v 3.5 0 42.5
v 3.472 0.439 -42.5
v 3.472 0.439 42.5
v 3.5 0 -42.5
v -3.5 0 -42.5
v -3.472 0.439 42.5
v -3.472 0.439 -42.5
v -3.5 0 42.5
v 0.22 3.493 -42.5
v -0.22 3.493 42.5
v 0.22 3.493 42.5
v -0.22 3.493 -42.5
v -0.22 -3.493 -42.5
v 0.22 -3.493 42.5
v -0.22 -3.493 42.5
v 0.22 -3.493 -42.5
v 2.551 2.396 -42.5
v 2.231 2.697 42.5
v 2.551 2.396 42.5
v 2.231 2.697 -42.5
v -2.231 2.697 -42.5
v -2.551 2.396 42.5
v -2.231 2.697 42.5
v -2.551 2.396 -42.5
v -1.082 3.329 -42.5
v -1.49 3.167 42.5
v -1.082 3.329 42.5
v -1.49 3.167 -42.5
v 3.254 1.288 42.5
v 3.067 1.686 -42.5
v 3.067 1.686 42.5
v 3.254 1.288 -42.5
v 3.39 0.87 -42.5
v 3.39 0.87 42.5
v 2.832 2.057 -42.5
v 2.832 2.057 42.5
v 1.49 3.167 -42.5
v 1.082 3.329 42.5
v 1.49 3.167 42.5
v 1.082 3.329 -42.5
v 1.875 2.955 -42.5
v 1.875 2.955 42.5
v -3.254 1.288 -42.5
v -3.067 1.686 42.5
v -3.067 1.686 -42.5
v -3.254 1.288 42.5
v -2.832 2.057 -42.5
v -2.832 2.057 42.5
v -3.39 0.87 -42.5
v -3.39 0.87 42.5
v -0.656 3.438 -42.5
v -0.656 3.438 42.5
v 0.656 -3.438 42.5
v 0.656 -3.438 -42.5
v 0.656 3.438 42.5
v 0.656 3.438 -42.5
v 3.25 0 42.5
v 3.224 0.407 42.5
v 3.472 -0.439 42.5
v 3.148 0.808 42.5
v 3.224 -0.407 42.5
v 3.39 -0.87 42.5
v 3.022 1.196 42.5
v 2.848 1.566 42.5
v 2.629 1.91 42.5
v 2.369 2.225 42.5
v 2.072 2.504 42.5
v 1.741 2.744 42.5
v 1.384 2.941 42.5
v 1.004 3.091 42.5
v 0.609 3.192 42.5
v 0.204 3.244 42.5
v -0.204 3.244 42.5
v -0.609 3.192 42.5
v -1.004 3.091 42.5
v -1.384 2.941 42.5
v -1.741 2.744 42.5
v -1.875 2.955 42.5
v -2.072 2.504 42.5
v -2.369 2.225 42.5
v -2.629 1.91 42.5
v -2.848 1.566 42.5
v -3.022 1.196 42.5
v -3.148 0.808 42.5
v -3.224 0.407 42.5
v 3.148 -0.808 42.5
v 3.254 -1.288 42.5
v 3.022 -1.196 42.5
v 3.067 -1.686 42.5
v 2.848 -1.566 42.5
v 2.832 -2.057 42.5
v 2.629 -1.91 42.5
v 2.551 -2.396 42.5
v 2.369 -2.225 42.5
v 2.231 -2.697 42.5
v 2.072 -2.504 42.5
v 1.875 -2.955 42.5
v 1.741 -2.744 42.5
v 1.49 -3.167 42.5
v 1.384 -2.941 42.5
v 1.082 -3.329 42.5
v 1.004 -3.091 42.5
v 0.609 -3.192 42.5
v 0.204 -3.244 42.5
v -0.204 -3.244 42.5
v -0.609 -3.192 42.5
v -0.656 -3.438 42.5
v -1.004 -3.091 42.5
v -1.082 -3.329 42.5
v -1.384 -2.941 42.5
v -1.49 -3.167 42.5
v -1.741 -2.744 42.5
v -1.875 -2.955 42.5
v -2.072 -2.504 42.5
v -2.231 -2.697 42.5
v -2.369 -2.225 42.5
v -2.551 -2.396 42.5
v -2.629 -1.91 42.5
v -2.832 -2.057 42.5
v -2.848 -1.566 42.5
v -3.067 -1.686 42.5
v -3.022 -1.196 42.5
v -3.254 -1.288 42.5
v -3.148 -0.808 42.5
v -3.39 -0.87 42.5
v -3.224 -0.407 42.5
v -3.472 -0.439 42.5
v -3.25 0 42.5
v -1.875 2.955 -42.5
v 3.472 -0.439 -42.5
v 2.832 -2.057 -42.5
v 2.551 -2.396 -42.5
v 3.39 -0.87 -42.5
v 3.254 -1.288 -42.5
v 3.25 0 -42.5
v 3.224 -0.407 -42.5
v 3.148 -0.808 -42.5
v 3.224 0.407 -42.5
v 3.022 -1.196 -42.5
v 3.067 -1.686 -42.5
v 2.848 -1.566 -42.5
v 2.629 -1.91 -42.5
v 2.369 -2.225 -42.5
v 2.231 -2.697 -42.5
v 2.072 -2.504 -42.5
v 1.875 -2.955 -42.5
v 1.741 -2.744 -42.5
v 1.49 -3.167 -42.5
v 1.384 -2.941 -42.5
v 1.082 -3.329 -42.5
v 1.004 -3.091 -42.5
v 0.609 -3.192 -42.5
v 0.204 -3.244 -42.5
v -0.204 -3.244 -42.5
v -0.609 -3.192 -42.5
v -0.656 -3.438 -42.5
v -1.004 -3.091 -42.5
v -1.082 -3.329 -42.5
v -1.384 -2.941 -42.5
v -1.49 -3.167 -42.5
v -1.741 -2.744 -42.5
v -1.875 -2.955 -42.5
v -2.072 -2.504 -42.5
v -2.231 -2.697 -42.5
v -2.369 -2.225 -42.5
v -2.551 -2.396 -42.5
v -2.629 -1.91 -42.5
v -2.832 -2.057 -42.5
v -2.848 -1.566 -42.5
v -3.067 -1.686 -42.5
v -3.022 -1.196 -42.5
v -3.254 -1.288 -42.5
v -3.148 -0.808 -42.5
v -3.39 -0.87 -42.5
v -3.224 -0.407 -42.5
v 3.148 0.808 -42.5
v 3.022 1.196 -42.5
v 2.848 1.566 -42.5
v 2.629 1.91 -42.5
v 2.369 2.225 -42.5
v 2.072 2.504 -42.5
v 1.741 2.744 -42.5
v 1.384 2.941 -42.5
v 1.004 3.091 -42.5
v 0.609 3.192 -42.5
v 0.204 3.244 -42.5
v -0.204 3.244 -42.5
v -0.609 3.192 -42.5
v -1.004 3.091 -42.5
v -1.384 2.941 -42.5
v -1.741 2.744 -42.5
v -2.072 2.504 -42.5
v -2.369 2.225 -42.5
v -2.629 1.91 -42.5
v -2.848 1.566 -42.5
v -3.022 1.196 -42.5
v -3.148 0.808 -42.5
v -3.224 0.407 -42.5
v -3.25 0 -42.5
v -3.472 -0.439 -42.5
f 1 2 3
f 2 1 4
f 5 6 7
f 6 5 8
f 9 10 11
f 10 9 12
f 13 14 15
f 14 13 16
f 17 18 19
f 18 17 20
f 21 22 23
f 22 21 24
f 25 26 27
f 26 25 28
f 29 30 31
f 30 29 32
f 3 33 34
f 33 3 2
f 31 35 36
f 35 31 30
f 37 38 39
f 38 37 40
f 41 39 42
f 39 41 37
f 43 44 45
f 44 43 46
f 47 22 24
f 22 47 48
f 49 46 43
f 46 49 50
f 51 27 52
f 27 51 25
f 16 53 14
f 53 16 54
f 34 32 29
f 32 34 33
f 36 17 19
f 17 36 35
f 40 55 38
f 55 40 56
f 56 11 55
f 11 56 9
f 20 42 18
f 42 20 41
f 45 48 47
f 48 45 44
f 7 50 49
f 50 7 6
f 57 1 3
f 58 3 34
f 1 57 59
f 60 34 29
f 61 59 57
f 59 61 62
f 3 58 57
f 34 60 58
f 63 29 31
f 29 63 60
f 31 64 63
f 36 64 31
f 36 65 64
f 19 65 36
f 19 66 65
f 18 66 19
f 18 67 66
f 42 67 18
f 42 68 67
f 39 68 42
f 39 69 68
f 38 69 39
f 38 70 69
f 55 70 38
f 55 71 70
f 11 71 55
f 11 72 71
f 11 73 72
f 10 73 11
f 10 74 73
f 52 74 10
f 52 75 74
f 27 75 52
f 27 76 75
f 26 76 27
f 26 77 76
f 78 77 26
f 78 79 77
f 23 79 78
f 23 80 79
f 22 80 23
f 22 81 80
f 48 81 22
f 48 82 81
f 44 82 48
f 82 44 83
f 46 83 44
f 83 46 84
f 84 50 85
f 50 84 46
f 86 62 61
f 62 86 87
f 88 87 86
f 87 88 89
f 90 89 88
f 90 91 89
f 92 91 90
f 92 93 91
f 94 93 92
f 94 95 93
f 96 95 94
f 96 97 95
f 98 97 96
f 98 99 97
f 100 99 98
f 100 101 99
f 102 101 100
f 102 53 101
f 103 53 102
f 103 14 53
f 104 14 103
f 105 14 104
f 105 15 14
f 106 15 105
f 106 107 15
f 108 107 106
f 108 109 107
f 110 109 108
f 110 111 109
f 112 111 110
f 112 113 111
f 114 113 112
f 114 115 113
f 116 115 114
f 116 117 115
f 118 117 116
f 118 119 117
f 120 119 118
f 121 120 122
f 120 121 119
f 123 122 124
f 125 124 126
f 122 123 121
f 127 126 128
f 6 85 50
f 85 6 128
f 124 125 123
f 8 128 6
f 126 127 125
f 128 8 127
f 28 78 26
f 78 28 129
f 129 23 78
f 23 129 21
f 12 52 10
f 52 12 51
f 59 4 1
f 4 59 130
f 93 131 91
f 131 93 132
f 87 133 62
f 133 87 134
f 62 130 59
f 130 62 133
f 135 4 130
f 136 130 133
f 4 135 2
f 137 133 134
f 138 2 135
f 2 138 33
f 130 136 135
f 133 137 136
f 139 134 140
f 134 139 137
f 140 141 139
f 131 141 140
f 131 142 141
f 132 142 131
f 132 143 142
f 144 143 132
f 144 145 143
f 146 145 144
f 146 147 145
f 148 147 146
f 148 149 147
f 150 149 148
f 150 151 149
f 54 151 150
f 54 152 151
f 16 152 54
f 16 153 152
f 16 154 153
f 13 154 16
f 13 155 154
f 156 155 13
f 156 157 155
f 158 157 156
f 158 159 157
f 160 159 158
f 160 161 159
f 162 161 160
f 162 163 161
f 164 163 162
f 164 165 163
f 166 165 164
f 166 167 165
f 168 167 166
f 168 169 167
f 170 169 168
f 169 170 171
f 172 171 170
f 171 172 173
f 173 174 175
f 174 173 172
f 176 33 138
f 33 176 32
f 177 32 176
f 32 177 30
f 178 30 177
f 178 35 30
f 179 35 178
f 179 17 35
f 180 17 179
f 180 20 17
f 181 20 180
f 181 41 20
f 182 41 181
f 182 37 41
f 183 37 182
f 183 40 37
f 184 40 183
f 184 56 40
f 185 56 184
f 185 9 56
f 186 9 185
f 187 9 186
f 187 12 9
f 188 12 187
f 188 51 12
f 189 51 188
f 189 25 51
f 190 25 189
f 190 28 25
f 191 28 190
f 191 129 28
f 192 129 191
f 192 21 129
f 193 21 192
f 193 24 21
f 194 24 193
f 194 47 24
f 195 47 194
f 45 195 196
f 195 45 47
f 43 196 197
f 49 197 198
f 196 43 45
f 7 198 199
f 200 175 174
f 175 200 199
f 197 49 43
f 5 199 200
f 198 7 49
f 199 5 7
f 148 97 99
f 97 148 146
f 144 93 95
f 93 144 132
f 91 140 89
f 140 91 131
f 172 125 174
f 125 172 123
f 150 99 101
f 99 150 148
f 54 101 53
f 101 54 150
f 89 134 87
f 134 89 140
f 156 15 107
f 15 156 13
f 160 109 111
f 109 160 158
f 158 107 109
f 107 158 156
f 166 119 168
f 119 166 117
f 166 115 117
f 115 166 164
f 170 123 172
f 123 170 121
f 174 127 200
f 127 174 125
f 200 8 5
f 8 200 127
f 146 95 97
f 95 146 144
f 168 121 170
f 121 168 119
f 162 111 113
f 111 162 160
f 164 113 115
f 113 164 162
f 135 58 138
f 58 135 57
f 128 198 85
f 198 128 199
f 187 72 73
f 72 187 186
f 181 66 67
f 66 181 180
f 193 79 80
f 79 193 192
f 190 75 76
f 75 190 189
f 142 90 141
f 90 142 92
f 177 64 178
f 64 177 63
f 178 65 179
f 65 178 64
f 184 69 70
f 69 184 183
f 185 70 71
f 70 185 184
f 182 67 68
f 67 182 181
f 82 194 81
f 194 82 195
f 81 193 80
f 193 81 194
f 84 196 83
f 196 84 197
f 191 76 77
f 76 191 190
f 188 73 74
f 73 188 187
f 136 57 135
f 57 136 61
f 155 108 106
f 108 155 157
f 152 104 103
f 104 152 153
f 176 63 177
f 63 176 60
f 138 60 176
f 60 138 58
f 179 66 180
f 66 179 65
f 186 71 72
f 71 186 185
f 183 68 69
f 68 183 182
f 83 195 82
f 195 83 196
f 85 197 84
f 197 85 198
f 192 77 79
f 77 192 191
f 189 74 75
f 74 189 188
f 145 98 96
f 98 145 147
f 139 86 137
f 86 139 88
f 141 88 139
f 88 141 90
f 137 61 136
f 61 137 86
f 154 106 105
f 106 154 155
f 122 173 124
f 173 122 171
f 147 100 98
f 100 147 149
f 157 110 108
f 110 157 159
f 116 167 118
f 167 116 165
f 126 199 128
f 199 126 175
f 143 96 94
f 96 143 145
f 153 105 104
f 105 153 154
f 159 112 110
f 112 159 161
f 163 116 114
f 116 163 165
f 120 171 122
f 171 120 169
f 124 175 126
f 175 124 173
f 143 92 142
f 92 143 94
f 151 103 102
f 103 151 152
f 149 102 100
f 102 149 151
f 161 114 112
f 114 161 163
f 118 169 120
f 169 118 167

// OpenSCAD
$fn = 50;


difference() {
	union() {
		translate(v = [0, 0, -42.5000000000]) {
			cylinder(h = 85, r = 3.5000000000);
		}
	}
	union() {
		translate(v = [0, 0, -100.0000000000]) {
			cylinder(h = 200, r = 3.2500000000);
		}
	}
}
